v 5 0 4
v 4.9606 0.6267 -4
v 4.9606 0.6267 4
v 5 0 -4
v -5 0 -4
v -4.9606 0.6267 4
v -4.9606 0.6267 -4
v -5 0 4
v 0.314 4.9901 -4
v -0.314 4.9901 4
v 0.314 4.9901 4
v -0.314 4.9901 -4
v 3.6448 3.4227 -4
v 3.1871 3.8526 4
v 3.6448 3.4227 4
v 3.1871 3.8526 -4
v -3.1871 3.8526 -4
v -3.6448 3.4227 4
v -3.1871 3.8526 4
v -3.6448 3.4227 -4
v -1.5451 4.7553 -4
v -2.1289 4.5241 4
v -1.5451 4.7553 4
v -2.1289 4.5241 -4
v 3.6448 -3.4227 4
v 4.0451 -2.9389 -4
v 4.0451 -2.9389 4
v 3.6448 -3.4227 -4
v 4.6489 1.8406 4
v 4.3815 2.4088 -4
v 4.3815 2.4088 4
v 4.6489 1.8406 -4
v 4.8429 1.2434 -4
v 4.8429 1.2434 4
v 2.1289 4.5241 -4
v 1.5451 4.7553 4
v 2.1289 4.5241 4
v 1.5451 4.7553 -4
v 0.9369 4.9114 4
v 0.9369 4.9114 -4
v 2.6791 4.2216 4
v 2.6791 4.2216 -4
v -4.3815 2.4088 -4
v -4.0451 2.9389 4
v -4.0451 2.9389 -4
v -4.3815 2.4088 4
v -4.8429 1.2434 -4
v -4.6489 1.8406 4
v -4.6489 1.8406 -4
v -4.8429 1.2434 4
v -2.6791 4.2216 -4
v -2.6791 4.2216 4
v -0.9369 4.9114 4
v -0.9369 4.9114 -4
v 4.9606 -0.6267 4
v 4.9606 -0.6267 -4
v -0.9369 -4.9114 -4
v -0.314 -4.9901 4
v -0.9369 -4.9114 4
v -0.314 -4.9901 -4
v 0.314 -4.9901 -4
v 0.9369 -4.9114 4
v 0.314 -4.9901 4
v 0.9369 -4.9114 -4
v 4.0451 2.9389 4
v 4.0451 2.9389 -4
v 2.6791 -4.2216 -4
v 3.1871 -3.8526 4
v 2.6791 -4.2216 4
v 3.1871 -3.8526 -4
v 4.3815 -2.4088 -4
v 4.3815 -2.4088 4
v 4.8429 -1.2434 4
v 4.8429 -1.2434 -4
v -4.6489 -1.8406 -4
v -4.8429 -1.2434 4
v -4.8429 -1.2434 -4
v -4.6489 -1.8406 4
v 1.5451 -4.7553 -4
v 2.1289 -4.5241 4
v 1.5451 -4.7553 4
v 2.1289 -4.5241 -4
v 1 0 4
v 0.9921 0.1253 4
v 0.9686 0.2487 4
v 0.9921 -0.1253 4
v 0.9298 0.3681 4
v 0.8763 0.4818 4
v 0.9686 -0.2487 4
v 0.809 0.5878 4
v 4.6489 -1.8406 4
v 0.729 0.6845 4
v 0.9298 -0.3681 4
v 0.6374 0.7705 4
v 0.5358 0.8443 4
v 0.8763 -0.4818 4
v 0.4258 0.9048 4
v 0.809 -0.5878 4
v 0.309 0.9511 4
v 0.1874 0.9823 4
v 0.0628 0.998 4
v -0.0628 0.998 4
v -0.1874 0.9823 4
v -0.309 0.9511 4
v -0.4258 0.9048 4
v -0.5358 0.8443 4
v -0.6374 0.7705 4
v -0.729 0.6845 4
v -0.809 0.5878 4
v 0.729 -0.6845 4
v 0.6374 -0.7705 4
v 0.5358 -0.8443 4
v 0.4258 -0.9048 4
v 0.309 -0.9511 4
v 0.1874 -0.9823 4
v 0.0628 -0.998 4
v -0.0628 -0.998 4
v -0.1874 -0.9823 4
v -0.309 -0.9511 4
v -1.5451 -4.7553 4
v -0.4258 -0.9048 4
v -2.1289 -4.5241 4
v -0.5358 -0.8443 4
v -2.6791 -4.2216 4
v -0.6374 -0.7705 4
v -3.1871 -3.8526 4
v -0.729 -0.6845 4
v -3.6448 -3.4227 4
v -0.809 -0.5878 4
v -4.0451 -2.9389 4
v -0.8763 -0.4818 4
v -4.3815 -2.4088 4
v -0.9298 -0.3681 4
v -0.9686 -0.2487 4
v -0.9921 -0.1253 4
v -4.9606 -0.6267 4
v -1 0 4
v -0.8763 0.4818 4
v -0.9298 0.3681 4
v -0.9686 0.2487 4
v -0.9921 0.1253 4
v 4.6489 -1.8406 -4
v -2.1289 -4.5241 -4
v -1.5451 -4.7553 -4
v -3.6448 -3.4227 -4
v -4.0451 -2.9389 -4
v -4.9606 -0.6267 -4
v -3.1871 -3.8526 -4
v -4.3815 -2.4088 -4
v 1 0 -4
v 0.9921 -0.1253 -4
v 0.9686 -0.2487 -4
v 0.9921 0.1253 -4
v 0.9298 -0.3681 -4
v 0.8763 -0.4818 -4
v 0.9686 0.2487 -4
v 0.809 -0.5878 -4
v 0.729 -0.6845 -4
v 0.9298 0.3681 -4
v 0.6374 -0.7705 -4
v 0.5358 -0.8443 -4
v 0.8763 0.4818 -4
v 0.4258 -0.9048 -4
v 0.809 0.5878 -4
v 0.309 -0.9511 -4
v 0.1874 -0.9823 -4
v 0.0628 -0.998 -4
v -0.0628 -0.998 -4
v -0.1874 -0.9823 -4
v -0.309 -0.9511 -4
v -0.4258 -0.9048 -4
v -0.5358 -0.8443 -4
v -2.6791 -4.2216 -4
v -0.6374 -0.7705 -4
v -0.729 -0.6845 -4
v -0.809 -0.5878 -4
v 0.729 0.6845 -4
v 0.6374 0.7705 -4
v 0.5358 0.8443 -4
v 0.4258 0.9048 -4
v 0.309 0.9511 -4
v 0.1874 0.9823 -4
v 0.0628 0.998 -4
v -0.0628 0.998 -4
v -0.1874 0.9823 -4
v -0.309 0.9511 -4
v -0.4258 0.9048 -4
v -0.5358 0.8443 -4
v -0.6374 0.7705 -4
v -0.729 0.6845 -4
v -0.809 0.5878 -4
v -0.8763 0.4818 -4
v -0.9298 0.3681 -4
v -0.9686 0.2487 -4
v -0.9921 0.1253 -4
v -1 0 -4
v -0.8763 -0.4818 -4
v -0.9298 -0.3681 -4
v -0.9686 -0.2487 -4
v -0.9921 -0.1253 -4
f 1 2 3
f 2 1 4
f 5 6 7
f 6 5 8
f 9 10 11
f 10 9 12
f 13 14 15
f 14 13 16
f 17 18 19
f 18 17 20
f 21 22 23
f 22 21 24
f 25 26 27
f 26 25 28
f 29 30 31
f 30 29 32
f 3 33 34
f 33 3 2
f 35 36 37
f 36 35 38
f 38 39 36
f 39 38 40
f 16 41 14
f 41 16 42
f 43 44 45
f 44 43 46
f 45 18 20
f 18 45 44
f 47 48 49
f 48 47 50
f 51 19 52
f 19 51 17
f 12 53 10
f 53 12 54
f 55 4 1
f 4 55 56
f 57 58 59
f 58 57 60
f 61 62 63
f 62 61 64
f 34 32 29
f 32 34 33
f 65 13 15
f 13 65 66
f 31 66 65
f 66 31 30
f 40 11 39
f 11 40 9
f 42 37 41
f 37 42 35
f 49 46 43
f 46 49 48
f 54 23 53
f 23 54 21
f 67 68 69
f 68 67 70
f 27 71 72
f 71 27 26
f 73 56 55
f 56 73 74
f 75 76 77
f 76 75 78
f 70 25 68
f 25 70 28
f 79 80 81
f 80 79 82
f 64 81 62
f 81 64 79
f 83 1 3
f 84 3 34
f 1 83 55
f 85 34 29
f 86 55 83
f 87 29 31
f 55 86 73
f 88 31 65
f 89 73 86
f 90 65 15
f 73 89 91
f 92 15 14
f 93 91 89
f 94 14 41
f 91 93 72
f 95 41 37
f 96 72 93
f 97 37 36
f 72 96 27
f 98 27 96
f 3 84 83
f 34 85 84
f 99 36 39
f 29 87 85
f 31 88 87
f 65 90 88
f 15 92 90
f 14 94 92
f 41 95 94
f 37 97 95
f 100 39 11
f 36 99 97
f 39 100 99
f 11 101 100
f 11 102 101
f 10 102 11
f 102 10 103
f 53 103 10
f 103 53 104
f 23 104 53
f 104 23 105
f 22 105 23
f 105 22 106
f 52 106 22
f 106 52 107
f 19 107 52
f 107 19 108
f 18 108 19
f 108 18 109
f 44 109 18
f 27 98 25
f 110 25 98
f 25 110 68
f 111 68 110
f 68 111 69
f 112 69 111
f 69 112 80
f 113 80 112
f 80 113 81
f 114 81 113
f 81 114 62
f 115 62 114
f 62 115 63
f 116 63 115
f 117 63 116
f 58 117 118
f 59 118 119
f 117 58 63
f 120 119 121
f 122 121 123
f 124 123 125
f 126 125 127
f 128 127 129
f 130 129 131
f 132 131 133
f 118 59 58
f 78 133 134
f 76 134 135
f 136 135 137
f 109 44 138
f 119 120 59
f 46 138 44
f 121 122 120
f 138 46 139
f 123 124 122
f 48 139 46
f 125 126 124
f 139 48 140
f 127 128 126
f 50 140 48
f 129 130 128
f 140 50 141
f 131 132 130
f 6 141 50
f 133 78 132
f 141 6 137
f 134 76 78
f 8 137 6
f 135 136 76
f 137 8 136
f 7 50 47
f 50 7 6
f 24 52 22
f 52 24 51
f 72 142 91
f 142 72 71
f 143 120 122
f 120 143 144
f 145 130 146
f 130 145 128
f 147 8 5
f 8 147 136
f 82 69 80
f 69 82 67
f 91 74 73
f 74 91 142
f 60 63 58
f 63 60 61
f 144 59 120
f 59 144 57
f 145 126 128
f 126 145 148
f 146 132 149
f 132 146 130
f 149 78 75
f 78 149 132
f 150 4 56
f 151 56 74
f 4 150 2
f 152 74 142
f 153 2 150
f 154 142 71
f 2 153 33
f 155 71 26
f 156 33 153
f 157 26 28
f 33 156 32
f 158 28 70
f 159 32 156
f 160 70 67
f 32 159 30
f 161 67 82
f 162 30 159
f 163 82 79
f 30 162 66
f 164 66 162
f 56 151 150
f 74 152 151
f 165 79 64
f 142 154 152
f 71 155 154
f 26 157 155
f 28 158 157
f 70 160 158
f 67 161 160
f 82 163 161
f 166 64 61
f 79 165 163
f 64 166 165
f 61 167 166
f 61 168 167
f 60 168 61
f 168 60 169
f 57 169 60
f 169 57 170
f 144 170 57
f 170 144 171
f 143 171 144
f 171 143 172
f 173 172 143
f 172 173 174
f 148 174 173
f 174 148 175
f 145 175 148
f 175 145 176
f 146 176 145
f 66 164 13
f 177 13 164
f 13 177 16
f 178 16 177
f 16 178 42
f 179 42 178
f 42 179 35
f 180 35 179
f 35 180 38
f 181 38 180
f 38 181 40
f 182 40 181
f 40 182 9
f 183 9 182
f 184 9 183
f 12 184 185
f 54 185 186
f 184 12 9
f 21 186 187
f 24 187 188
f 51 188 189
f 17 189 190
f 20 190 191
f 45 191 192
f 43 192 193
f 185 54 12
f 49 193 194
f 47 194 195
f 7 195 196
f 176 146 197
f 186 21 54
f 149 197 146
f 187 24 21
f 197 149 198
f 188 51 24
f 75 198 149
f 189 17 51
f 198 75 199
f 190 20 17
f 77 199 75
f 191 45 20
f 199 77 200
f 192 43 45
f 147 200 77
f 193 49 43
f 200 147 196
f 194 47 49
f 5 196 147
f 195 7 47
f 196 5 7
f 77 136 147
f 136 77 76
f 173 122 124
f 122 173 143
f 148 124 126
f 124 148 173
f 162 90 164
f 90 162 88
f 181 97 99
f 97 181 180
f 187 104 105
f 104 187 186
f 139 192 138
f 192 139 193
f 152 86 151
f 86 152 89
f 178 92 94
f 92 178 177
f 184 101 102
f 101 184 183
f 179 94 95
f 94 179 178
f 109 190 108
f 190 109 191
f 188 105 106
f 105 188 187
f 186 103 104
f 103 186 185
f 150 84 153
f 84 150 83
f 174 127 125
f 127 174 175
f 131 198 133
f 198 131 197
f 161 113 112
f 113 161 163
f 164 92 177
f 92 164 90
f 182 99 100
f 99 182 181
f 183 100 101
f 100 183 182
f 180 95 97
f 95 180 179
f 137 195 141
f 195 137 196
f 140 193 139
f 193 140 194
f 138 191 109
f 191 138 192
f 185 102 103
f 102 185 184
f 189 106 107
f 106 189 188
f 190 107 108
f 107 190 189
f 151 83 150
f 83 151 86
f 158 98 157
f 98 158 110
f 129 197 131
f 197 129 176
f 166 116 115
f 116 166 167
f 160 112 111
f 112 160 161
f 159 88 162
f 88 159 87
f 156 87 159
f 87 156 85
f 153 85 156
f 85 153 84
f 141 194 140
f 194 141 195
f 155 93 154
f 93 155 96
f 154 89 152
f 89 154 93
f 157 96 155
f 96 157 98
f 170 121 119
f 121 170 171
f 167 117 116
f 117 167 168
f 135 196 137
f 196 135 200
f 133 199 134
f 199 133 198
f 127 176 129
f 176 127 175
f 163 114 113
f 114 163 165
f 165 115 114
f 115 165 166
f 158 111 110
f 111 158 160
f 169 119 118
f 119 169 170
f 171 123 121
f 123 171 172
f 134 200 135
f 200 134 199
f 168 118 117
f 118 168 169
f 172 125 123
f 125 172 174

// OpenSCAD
$fn = 50;


difference() {
	union() {
		translate(v = [0, 0, -4.0000000000]) {
			cylinder(h = 8, r = 5.0000000000);
		}
	}
	union() {
		translate(v = [0, 0, -100.0000000000]) {
			cylinder(h = 200, r = 1.0000000000);
		}
	}
}
